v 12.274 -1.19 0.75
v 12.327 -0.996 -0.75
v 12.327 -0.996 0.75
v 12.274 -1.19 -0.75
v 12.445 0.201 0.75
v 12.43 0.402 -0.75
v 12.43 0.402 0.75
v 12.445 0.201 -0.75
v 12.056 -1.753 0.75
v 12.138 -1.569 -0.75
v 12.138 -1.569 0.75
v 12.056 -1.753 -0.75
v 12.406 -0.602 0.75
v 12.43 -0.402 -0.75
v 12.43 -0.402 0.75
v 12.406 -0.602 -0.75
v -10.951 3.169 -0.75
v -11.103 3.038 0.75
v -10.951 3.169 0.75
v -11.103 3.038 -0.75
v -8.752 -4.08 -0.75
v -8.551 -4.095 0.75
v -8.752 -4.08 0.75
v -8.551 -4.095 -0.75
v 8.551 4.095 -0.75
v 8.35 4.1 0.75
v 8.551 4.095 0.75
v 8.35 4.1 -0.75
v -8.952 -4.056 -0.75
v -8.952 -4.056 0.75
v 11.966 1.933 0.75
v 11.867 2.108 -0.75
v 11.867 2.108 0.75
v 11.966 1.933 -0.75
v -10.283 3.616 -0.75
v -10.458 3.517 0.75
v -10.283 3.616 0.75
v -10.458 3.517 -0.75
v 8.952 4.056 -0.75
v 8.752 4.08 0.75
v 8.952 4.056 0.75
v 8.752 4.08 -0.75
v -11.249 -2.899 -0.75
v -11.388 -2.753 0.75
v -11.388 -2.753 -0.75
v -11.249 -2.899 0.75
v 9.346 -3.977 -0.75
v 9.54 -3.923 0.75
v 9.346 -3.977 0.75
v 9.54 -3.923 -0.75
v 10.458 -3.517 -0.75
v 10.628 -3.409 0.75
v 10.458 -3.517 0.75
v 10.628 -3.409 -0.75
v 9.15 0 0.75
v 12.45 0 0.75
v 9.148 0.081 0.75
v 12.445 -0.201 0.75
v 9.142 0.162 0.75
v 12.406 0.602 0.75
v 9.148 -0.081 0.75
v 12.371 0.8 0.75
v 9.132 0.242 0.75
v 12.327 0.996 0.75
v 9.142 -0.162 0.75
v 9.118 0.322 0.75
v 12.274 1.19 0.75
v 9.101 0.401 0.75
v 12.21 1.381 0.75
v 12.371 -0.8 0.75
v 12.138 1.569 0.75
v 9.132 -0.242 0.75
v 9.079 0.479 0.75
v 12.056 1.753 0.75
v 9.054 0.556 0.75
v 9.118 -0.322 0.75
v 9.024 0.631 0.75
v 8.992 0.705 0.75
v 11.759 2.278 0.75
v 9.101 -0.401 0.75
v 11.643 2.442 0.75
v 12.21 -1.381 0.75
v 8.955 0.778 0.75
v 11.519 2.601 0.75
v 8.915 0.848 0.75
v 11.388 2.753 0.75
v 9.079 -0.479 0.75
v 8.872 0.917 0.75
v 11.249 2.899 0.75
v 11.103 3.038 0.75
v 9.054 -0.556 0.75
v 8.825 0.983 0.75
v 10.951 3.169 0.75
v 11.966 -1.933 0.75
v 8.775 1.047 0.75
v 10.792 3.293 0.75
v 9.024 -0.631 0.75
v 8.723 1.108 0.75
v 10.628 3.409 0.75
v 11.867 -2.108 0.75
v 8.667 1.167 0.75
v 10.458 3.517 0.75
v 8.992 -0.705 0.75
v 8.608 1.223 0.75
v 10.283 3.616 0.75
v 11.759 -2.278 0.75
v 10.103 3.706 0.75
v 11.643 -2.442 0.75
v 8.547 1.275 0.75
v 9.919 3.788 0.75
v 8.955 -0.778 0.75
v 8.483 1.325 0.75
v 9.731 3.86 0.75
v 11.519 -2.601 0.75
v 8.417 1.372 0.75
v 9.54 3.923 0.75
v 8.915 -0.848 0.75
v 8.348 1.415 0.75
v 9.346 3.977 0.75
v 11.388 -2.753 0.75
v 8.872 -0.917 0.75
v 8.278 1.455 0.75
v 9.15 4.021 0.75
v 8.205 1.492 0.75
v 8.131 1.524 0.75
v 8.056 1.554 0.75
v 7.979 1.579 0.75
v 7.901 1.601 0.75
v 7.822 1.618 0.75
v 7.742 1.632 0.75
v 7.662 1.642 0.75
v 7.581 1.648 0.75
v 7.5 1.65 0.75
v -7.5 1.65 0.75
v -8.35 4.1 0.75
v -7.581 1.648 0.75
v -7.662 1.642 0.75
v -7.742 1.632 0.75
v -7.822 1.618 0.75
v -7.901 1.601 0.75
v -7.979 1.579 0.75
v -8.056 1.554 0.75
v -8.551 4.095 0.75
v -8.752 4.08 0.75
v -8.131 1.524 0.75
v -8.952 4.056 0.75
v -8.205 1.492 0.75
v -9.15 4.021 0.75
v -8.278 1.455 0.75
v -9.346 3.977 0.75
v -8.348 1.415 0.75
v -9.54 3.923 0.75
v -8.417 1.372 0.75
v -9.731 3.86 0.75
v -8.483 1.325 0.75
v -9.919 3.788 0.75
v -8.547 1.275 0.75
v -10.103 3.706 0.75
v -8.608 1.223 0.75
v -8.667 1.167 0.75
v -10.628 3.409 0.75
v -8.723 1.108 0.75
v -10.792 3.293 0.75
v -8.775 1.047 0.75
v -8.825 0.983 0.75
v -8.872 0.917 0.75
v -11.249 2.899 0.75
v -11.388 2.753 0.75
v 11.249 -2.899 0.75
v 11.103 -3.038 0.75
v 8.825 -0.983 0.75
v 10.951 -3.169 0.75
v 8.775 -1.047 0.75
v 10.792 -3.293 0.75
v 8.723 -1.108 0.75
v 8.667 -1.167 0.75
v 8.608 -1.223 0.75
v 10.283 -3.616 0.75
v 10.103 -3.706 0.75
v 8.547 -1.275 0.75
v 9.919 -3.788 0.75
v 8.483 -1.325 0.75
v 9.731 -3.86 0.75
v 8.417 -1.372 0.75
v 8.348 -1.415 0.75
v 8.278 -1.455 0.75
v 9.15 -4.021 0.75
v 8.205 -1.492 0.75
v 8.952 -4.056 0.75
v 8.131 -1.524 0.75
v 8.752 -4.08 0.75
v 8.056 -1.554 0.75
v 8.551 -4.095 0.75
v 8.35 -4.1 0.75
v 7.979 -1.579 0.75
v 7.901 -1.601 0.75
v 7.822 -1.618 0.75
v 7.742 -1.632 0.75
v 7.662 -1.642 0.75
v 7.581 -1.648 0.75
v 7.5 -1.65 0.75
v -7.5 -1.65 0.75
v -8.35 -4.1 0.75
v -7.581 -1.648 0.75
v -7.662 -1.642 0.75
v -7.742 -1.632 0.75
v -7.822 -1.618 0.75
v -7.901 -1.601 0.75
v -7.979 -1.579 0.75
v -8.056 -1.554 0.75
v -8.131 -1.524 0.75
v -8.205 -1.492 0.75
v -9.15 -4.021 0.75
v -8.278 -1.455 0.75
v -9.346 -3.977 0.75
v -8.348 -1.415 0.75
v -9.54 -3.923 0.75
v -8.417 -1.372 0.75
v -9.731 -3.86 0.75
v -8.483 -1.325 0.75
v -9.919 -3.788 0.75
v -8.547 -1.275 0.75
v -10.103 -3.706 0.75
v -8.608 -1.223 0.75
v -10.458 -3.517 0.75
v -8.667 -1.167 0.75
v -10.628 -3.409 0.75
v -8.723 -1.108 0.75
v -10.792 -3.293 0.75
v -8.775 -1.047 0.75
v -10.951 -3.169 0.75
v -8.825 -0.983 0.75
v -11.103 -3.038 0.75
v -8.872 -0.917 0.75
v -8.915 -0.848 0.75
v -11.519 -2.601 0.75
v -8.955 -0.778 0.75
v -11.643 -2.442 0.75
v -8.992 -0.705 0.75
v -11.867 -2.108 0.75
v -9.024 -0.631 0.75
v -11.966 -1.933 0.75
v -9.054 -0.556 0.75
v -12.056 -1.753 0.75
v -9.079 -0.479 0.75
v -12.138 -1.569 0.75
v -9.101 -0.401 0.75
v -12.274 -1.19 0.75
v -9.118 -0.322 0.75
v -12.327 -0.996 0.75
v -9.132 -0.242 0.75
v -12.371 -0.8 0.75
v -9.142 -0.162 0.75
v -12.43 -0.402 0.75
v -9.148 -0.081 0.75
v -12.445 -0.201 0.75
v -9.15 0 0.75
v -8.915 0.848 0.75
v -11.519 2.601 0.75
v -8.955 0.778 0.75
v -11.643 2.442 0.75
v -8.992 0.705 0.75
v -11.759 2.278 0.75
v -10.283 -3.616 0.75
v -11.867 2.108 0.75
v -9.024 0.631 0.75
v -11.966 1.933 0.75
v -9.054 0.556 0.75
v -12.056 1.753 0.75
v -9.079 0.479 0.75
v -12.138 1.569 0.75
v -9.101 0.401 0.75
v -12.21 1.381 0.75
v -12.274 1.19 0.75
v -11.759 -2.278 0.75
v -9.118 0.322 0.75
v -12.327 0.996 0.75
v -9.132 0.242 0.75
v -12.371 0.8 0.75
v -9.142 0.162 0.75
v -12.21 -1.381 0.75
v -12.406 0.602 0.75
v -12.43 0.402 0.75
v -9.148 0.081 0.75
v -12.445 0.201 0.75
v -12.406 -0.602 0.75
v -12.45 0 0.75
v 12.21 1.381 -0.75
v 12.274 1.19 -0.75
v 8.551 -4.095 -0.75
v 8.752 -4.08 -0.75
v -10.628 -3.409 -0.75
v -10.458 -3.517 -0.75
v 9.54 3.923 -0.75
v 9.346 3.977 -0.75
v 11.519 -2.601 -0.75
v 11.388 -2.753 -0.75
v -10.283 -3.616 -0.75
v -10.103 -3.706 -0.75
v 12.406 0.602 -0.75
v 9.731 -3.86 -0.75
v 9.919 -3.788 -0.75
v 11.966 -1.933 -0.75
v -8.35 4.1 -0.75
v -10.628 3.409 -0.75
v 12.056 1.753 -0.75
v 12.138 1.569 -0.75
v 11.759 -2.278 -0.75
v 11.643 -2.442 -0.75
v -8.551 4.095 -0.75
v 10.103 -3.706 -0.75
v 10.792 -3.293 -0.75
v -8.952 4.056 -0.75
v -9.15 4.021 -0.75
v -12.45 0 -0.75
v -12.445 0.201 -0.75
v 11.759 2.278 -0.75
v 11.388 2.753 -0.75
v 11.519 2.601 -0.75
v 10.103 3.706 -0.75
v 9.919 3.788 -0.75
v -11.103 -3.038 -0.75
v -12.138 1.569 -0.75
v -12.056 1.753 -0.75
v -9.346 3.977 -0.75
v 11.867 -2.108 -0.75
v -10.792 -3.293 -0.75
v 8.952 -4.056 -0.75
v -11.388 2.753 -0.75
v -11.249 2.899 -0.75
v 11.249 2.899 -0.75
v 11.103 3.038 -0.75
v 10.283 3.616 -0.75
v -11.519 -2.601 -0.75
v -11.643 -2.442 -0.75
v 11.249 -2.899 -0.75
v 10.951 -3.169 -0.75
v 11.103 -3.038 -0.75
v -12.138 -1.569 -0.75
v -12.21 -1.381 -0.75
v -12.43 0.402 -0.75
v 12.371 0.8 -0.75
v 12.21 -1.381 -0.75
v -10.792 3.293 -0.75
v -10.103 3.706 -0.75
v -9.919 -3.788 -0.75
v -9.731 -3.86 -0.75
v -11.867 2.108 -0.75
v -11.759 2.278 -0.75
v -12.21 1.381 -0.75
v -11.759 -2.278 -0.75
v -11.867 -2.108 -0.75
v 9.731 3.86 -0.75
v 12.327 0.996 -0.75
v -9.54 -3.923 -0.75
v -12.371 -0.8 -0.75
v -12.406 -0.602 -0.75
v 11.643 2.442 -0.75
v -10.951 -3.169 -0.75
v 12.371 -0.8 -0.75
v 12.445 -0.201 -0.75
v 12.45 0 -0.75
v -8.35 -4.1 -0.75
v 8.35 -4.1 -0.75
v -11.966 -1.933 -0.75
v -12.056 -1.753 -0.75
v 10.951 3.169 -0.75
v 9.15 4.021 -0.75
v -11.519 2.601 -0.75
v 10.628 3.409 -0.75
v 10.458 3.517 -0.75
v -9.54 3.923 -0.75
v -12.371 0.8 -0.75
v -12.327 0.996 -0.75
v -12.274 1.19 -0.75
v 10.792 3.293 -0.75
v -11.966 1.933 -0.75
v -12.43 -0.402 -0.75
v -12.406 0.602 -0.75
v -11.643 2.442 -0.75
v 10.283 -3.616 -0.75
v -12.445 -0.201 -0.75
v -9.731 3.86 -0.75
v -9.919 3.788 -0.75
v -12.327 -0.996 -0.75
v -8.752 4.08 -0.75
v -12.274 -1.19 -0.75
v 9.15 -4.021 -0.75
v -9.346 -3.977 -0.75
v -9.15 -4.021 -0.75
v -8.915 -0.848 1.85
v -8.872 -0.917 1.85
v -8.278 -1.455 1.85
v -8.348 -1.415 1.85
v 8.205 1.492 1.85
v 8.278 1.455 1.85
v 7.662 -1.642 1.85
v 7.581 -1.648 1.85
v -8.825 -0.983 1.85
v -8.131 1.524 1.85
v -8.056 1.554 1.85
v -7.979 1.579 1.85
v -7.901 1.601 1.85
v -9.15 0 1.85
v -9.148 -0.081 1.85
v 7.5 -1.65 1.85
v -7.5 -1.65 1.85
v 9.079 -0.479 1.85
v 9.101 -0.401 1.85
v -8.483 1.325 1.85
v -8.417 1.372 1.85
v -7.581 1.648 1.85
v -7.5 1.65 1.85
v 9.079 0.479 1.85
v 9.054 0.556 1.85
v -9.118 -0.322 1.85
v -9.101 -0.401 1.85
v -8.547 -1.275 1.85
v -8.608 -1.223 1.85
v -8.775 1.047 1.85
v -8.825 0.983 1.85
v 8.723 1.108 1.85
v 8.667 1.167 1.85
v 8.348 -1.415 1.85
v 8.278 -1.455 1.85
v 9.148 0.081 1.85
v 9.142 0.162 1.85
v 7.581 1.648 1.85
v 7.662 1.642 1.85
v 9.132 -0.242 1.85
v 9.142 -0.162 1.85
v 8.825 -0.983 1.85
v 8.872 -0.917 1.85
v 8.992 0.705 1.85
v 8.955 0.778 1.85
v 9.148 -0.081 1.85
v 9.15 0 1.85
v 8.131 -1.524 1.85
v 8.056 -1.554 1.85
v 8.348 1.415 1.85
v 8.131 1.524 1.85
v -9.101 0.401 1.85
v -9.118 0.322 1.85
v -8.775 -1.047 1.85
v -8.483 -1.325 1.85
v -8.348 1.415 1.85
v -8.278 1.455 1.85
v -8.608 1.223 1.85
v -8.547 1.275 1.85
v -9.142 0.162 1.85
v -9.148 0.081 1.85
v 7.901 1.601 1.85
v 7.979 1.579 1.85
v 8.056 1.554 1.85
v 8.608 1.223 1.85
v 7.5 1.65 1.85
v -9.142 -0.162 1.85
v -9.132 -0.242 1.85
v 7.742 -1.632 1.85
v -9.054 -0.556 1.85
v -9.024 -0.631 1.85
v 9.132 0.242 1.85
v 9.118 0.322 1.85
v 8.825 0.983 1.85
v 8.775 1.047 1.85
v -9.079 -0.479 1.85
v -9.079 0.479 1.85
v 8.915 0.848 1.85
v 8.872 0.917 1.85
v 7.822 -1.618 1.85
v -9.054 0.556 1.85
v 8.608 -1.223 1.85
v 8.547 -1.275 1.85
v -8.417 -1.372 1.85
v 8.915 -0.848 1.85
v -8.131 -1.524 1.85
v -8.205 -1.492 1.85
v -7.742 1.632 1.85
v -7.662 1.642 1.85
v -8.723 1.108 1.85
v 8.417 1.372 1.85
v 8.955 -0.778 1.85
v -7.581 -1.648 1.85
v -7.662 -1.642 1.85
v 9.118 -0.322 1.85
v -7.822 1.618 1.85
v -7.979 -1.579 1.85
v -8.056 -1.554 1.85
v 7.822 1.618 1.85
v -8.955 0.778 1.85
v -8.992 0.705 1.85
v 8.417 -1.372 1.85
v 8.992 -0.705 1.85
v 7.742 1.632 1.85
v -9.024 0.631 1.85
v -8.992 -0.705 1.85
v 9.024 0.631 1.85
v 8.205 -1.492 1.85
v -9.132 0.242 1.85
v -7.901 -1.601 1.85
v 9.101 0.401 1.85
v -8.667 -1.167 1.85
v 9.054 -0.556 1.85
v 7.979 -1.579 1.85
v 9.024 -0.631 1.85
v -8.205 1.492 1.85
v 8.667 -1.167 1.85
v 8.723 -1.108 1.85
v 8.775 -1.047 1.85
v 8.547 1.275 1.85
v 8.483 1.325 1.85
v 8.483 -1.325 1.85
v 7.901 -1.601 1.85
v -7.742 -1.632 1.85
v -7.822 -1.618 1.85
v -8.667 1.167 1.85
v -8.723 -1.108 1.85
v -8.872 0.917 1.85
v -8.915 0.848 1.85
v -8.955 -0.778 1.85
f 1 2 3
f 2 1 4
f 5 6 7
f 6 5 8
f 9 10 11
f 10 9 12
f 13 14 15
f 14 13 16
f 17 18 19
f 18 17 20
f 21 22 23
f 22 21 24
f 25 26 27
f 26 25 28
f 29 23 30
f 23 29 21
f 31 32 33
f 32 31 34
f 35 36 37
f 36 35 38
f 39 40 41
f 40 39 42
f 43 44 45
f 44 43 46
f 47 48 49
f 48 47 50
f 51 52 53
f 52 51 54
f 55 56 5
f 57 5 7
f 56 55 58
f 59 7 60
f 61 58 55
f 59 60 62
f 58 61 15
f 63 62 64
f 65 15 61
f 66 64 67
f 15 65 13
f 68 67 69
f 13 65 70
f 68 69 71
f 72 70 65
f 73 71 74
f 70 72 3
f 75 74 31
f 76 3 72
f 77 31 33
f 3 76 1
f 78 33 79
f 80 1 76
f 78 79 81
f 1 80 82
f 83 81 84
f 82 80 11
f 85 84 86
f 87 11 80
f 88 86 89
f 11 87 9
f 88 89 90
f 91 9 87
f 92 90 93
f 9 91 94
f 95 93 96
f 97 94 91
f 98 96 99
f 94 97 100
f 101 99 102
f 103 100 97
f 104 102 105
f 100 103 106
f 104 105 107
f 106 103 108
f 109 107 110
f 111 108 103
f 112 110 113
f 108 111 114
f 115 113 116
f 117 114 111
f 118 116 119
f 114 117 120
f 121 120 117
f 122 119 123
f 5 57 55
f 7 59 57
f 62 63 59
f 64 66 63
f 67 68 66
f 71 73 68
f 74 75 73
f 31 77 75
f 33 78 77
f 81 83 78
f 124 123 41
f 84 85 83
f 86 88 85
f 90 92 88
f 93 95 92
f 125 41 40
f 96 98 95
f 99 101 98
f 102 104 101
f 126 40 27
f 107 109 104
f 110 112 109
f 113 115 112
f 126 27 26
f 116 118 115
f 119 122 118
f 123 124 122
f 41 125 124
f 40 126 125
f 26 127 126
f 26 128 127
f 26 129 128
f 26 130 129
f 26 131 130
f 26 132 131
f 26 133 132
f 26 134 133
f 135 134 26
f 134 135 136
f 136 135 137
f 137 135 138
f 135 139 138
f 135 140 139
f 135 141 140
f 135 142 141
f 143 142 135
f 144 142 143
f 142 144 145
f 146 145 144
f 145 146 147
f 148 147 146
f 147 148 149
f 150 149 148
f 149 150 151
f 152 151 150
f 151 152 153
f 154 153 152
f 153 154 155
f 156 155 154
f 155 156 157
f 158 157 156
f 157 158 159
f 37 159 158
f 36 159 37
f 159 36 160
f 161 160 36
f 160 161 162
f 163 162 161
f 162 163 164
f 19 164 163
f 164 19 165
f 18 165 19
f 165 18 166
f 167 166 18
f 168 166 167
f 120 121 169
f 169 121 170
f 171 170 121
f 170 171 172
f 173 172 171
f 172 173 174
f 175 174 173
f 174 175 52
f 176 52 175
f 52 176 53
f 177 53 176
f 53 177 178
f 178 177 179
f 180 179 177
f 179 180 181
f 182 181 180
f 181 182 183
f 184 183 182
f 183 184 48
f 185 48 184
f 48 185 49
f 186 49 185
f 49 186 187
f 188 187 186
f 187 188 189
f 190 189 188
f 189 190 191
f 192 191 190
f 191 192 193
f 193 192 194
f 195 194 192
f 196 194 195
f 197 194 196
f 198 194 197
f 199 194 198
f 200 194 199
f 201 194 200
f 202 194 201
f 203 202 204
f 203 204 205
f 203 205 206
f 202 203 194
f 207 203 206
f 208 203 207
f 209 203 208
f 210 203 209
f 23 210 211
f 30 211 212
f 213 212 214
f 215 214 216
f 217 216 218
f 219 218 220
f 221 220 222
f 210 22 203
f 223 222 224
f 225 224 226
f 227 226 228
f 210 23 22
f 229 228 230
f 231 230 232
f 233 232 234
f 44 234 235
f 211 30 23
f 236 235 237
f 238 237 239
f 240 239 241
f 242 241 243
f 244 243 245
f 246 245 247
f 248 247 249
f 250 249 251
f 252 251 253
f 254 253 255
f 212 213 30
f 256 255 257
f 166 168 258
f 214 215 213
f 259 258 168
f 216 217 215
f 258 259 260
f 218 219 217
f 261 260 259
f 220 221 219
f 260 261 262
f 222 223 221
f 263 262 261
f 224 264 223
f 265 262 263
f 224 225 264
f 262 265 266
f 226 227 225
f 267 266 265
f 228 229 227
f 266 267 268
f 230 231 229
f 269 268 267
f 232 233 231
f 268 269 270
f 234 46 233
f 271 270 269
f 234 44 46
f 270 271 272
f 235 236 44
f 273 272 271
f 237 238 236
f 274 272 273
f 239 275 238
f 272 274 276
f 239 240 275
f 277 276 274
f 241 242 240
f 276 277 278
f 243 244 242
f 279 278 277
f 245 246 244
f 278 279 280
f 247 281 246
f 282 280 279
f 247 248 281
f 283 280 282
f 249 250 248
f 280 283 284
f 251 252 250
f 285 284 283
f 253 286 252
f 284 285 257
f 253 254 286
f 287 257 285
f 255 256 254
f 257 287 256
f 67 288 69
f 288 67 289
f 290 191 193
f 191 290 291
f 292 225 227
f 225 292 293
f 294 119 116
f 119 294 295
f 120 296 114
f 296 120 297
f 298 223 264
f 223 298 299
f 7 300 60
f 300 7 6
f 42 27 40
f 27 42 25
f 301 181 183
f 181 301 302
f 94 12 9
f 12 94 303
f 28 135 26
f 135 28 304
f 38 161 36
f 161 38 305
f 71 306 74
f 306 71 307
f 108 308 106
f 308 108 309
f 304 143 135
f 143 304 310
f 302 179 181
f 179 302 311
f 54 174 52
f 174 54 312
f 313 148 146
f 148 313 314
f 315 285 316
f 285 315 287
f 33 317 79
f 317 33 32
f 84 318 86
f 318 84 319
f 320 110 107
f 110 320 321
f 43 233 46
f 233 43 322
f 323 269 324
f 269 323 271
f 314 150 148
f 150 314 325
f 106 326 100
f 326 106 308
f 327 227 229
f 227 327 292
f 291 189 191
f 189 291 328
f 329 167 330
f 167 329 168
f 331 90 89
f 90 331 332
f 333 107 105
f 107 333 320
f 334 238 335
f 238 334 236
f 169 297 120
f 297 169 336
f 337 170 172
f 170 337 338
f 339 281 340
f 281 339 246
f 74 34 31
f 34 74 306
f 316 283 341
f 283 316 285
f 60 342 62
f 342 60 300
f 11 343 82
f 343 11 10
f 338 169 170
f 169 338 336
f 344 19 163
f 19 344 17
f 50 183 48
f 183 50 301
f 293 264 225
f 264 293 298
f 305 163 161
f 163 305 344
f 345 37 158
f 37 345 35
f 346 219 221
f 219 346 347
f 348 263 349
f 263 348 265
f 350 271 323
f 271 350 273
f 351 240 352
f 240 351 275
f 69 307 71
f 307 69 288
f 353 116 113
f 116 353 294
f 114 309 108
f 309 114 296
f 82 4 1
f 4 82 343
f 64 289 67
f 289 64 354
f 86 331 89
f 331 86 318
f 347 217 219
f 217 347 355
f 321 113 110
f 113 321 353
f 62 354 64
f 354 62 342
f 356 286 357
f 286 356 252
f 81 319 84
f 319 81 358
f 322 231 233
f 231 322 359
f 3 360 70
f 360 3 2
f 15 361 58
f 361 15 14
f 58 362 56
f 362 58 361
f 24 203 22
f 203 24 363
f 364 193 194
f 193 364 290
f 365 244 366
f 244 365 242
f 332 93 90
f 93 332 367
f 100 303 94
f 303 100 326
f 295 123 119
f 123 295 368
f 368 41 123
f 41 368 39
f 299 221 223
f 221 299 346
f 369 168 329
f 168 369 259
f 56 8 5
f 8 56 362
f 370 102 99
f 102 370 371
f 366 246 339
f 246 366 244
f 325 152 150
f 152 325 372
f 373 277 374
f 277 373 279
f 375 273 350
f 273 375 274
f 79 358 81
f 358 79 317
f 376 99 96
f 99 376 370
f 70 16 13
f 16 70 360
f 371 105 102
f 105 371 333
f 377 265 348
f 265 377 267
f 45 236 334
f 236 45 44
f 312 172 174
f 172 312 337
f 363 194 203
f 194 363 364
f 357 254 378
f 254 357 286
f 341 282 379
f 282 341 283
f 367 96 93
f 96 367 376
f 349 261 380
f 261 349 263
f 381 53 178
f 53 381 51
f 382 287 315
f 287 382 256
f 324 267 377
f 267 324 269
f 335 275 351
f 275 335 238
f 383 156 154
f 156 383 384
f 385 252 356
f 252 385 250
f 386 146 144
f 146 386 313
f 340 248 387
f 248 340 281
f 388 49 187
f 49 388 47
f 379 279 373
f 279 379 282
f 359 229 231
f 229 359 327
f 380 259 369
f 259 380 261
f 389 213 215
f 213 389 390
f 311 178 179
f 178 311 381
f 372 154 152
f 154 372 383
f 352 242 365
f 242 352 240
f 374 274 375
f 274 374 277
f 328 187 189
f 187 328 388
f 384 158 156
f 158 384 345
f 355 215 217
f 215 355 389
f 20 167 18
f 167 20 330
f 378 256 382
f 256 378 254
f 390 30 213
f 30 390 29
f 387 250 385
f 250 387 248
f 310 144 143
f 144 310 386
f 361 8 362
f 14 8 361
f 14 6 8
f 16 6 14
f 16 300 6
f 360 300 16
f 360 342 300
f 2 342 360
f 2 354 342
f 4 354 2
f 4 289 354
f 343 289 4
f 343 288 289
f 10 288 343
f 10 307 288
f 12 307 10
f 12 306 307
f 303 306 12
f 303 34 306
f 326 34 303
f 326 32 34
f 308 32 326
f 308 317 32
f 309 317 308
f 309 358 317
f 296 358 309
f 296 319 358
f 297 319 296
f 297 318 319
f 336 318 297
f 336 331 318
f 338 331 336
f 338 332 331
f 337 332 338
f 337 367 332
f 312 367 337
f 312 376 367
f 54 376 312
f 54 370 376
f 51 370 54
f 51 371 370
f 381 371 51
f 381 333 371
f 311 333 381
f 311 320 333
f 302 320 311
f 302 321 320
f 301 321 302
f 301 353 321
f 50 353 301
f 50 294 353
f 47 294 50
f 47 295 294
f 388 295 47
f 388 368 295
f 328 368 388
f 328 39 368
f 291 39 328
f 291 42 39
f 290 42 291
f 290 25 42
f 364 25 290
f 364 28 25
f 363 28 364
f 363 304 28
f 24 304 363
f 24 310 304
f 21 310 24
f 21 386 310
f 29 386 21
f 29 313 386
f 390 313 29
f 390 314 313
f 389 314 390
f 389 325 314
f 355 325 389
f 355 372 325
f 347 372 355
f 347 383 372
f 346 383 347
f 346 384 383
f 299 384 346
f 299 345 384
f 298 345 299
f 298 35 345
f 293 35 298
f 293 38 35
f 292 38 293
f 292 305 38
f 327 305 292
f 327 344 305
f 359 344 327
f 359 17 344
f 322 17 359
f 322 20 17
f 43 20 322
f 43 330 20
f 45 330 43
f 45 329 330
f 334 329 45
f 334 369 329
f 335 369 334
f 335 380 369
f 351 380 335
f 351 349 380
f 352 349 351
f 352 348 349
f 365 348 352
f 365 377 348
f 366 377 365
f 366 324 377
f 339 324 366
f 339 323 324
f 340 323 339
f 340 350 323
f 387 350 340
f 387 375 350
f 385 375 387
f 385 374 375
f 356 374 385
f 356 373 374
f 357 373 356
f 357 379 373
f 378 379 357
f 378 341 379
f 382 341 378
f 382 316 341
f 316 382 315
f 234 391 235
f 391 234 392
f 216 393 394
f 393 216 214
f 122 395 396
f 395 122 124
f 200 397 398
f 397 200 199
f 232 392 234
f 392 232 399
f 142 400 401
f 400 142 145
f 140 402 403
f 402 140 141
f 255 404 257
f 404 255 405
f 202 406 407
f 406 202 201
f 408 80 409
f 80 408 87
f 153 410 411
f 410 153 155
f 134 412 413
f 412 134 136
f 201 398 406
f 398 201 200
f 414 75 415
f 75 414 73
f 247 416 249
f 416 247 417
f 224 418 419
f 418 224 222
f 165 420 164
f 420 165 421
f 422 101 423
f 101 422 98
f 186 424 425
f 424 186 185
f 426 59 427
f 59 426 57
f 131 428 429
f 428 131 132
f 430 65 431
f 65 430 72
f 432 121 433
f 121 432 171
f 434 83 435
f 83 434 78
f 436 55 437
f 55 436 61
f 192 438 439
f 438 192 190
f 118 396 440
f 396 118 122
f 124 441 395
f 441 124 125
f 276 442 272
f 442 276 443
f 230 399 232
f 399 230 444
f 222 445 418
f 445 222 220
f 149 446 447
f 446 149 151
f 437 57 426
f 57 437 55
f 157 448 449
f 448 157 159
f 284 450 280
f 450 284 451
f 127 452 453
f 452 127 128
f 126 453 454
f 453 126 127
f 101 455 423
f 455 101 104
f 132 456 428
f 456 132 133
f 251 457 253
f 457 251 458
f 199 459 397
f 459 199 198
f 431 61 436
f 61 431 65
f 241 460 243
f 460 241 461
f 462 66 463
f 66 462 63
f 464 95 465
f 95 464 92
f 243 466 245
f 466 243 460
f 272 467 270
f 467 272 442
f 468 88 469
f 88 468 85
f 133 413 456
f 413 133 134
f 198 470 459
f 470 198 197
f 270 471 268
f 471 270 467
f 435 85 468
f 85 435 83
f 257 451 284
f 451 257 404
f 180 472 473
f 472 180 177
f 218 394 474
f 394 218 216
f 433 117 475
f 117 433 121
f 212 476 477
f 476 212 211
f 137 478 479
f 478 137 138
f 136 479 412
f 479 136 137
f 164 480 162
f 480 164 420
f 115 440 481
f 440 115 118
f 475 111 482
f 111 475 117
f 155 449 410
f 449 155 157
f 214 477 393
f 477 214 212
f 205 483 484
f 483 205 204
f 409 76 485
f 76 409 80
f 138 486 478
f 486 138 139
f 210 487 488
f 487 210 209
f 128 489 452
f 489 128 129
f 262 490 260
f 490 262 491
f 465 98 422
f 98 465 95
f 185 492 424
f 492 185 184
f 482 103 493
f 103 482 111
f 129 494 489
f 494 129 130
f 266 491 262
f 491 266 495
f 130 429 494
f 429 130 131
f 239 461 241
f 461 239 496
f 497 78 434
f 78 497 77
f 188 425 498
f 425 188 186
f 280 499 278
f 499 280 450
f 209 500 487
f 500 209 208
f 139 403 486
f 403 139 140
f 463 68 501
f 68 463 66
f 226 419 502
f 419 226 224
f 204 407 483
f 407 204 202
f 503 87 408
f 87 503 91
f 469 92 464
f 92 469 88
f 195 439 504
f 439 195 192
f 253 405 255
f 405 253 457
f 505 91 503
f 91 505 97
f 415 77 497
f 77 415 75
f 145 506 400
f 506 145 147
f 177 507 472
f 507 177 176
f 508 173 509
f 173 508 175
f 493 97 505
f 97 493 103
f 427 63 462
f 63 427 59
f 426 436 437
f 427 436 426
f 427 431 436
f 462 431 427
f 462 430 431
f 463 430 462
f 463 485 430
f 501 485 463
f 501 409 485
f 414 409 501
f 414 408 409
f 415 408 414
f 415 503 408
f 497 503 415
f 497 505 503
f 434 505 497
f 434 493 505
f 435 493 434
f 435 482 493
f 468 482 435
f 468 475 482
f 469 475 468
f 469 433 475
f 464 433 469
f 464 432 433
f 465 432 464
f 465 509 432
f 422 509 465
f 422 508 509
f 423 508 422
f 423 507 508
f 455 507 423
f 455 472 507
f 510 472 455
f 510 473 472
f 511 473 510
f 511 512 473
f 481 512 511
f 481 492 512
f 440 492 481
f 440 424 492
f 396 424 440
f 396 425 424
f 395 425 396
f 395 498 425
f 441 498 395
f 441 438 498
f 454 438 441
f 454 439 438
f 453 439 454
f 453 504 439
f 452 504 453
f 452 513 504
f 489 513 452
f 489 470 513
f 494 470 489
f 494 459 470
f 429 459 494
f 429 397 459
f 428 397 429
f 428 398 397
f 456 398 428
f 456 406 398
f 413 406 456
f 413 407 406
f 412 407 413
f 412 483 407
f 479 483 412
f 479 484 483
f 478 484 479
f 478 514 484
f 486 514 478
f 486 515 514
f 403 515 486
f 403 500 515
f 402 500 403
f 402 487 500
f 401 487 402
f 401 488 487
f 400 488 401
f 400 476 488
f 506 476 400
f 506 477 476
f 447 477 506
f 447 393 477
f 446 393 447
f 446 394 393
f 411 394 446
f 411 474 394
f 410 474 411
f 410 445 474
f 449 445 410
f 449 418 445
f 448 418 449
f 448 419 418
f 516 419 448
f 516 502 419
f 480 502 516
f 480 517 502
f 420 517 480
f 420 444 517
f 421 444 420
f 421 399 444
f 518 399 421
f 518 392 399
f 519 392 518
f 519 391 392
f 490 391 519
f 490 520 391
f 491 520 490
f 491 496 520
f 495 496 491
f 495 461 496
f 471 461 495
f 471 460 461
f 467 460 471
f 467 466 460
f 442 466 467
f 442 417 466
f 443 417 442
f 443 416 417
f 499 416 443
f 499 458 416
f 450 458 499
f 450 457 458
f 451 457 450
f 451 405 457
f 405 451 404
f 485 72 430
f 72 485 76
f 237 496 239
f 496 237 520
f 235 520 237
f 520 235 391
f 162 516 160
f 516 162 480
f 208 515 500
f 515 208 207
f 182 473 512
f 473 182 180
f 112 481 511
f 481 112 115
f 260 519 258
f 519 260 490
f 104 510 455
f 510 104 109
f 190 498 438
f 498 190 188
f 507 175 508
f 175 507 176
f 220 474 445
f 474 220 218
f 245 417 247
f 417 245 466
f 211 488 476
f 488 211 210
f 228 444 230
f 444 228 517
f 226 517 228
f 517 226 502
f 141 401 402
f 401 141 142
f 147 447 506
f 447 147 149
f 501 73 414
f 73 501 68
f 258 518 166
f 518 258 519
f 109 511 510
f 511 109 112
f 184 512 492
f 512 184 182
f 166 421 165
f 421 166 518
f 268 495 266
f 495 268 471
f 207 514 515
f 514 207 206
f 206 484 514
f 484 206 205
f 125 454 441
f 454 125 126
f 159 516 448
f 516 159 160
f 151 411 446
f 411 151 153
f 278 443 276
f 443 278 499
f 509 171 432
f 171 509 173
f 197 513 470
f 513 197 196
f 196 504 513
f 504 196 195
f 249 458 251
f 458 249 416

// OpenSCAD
//ThinkPad x250 Rubber Foot
include <BOSL/constants.scad>
use <BOSL/shapes.scad>
$fn=128;

//Body
slot(l=16.7, r1=4.1, r2=4.1, h=1.5);

//Lip
translate([0,0,1.3])
slot(l=15, r1=1.65, r2=1.65, h=1.1);
